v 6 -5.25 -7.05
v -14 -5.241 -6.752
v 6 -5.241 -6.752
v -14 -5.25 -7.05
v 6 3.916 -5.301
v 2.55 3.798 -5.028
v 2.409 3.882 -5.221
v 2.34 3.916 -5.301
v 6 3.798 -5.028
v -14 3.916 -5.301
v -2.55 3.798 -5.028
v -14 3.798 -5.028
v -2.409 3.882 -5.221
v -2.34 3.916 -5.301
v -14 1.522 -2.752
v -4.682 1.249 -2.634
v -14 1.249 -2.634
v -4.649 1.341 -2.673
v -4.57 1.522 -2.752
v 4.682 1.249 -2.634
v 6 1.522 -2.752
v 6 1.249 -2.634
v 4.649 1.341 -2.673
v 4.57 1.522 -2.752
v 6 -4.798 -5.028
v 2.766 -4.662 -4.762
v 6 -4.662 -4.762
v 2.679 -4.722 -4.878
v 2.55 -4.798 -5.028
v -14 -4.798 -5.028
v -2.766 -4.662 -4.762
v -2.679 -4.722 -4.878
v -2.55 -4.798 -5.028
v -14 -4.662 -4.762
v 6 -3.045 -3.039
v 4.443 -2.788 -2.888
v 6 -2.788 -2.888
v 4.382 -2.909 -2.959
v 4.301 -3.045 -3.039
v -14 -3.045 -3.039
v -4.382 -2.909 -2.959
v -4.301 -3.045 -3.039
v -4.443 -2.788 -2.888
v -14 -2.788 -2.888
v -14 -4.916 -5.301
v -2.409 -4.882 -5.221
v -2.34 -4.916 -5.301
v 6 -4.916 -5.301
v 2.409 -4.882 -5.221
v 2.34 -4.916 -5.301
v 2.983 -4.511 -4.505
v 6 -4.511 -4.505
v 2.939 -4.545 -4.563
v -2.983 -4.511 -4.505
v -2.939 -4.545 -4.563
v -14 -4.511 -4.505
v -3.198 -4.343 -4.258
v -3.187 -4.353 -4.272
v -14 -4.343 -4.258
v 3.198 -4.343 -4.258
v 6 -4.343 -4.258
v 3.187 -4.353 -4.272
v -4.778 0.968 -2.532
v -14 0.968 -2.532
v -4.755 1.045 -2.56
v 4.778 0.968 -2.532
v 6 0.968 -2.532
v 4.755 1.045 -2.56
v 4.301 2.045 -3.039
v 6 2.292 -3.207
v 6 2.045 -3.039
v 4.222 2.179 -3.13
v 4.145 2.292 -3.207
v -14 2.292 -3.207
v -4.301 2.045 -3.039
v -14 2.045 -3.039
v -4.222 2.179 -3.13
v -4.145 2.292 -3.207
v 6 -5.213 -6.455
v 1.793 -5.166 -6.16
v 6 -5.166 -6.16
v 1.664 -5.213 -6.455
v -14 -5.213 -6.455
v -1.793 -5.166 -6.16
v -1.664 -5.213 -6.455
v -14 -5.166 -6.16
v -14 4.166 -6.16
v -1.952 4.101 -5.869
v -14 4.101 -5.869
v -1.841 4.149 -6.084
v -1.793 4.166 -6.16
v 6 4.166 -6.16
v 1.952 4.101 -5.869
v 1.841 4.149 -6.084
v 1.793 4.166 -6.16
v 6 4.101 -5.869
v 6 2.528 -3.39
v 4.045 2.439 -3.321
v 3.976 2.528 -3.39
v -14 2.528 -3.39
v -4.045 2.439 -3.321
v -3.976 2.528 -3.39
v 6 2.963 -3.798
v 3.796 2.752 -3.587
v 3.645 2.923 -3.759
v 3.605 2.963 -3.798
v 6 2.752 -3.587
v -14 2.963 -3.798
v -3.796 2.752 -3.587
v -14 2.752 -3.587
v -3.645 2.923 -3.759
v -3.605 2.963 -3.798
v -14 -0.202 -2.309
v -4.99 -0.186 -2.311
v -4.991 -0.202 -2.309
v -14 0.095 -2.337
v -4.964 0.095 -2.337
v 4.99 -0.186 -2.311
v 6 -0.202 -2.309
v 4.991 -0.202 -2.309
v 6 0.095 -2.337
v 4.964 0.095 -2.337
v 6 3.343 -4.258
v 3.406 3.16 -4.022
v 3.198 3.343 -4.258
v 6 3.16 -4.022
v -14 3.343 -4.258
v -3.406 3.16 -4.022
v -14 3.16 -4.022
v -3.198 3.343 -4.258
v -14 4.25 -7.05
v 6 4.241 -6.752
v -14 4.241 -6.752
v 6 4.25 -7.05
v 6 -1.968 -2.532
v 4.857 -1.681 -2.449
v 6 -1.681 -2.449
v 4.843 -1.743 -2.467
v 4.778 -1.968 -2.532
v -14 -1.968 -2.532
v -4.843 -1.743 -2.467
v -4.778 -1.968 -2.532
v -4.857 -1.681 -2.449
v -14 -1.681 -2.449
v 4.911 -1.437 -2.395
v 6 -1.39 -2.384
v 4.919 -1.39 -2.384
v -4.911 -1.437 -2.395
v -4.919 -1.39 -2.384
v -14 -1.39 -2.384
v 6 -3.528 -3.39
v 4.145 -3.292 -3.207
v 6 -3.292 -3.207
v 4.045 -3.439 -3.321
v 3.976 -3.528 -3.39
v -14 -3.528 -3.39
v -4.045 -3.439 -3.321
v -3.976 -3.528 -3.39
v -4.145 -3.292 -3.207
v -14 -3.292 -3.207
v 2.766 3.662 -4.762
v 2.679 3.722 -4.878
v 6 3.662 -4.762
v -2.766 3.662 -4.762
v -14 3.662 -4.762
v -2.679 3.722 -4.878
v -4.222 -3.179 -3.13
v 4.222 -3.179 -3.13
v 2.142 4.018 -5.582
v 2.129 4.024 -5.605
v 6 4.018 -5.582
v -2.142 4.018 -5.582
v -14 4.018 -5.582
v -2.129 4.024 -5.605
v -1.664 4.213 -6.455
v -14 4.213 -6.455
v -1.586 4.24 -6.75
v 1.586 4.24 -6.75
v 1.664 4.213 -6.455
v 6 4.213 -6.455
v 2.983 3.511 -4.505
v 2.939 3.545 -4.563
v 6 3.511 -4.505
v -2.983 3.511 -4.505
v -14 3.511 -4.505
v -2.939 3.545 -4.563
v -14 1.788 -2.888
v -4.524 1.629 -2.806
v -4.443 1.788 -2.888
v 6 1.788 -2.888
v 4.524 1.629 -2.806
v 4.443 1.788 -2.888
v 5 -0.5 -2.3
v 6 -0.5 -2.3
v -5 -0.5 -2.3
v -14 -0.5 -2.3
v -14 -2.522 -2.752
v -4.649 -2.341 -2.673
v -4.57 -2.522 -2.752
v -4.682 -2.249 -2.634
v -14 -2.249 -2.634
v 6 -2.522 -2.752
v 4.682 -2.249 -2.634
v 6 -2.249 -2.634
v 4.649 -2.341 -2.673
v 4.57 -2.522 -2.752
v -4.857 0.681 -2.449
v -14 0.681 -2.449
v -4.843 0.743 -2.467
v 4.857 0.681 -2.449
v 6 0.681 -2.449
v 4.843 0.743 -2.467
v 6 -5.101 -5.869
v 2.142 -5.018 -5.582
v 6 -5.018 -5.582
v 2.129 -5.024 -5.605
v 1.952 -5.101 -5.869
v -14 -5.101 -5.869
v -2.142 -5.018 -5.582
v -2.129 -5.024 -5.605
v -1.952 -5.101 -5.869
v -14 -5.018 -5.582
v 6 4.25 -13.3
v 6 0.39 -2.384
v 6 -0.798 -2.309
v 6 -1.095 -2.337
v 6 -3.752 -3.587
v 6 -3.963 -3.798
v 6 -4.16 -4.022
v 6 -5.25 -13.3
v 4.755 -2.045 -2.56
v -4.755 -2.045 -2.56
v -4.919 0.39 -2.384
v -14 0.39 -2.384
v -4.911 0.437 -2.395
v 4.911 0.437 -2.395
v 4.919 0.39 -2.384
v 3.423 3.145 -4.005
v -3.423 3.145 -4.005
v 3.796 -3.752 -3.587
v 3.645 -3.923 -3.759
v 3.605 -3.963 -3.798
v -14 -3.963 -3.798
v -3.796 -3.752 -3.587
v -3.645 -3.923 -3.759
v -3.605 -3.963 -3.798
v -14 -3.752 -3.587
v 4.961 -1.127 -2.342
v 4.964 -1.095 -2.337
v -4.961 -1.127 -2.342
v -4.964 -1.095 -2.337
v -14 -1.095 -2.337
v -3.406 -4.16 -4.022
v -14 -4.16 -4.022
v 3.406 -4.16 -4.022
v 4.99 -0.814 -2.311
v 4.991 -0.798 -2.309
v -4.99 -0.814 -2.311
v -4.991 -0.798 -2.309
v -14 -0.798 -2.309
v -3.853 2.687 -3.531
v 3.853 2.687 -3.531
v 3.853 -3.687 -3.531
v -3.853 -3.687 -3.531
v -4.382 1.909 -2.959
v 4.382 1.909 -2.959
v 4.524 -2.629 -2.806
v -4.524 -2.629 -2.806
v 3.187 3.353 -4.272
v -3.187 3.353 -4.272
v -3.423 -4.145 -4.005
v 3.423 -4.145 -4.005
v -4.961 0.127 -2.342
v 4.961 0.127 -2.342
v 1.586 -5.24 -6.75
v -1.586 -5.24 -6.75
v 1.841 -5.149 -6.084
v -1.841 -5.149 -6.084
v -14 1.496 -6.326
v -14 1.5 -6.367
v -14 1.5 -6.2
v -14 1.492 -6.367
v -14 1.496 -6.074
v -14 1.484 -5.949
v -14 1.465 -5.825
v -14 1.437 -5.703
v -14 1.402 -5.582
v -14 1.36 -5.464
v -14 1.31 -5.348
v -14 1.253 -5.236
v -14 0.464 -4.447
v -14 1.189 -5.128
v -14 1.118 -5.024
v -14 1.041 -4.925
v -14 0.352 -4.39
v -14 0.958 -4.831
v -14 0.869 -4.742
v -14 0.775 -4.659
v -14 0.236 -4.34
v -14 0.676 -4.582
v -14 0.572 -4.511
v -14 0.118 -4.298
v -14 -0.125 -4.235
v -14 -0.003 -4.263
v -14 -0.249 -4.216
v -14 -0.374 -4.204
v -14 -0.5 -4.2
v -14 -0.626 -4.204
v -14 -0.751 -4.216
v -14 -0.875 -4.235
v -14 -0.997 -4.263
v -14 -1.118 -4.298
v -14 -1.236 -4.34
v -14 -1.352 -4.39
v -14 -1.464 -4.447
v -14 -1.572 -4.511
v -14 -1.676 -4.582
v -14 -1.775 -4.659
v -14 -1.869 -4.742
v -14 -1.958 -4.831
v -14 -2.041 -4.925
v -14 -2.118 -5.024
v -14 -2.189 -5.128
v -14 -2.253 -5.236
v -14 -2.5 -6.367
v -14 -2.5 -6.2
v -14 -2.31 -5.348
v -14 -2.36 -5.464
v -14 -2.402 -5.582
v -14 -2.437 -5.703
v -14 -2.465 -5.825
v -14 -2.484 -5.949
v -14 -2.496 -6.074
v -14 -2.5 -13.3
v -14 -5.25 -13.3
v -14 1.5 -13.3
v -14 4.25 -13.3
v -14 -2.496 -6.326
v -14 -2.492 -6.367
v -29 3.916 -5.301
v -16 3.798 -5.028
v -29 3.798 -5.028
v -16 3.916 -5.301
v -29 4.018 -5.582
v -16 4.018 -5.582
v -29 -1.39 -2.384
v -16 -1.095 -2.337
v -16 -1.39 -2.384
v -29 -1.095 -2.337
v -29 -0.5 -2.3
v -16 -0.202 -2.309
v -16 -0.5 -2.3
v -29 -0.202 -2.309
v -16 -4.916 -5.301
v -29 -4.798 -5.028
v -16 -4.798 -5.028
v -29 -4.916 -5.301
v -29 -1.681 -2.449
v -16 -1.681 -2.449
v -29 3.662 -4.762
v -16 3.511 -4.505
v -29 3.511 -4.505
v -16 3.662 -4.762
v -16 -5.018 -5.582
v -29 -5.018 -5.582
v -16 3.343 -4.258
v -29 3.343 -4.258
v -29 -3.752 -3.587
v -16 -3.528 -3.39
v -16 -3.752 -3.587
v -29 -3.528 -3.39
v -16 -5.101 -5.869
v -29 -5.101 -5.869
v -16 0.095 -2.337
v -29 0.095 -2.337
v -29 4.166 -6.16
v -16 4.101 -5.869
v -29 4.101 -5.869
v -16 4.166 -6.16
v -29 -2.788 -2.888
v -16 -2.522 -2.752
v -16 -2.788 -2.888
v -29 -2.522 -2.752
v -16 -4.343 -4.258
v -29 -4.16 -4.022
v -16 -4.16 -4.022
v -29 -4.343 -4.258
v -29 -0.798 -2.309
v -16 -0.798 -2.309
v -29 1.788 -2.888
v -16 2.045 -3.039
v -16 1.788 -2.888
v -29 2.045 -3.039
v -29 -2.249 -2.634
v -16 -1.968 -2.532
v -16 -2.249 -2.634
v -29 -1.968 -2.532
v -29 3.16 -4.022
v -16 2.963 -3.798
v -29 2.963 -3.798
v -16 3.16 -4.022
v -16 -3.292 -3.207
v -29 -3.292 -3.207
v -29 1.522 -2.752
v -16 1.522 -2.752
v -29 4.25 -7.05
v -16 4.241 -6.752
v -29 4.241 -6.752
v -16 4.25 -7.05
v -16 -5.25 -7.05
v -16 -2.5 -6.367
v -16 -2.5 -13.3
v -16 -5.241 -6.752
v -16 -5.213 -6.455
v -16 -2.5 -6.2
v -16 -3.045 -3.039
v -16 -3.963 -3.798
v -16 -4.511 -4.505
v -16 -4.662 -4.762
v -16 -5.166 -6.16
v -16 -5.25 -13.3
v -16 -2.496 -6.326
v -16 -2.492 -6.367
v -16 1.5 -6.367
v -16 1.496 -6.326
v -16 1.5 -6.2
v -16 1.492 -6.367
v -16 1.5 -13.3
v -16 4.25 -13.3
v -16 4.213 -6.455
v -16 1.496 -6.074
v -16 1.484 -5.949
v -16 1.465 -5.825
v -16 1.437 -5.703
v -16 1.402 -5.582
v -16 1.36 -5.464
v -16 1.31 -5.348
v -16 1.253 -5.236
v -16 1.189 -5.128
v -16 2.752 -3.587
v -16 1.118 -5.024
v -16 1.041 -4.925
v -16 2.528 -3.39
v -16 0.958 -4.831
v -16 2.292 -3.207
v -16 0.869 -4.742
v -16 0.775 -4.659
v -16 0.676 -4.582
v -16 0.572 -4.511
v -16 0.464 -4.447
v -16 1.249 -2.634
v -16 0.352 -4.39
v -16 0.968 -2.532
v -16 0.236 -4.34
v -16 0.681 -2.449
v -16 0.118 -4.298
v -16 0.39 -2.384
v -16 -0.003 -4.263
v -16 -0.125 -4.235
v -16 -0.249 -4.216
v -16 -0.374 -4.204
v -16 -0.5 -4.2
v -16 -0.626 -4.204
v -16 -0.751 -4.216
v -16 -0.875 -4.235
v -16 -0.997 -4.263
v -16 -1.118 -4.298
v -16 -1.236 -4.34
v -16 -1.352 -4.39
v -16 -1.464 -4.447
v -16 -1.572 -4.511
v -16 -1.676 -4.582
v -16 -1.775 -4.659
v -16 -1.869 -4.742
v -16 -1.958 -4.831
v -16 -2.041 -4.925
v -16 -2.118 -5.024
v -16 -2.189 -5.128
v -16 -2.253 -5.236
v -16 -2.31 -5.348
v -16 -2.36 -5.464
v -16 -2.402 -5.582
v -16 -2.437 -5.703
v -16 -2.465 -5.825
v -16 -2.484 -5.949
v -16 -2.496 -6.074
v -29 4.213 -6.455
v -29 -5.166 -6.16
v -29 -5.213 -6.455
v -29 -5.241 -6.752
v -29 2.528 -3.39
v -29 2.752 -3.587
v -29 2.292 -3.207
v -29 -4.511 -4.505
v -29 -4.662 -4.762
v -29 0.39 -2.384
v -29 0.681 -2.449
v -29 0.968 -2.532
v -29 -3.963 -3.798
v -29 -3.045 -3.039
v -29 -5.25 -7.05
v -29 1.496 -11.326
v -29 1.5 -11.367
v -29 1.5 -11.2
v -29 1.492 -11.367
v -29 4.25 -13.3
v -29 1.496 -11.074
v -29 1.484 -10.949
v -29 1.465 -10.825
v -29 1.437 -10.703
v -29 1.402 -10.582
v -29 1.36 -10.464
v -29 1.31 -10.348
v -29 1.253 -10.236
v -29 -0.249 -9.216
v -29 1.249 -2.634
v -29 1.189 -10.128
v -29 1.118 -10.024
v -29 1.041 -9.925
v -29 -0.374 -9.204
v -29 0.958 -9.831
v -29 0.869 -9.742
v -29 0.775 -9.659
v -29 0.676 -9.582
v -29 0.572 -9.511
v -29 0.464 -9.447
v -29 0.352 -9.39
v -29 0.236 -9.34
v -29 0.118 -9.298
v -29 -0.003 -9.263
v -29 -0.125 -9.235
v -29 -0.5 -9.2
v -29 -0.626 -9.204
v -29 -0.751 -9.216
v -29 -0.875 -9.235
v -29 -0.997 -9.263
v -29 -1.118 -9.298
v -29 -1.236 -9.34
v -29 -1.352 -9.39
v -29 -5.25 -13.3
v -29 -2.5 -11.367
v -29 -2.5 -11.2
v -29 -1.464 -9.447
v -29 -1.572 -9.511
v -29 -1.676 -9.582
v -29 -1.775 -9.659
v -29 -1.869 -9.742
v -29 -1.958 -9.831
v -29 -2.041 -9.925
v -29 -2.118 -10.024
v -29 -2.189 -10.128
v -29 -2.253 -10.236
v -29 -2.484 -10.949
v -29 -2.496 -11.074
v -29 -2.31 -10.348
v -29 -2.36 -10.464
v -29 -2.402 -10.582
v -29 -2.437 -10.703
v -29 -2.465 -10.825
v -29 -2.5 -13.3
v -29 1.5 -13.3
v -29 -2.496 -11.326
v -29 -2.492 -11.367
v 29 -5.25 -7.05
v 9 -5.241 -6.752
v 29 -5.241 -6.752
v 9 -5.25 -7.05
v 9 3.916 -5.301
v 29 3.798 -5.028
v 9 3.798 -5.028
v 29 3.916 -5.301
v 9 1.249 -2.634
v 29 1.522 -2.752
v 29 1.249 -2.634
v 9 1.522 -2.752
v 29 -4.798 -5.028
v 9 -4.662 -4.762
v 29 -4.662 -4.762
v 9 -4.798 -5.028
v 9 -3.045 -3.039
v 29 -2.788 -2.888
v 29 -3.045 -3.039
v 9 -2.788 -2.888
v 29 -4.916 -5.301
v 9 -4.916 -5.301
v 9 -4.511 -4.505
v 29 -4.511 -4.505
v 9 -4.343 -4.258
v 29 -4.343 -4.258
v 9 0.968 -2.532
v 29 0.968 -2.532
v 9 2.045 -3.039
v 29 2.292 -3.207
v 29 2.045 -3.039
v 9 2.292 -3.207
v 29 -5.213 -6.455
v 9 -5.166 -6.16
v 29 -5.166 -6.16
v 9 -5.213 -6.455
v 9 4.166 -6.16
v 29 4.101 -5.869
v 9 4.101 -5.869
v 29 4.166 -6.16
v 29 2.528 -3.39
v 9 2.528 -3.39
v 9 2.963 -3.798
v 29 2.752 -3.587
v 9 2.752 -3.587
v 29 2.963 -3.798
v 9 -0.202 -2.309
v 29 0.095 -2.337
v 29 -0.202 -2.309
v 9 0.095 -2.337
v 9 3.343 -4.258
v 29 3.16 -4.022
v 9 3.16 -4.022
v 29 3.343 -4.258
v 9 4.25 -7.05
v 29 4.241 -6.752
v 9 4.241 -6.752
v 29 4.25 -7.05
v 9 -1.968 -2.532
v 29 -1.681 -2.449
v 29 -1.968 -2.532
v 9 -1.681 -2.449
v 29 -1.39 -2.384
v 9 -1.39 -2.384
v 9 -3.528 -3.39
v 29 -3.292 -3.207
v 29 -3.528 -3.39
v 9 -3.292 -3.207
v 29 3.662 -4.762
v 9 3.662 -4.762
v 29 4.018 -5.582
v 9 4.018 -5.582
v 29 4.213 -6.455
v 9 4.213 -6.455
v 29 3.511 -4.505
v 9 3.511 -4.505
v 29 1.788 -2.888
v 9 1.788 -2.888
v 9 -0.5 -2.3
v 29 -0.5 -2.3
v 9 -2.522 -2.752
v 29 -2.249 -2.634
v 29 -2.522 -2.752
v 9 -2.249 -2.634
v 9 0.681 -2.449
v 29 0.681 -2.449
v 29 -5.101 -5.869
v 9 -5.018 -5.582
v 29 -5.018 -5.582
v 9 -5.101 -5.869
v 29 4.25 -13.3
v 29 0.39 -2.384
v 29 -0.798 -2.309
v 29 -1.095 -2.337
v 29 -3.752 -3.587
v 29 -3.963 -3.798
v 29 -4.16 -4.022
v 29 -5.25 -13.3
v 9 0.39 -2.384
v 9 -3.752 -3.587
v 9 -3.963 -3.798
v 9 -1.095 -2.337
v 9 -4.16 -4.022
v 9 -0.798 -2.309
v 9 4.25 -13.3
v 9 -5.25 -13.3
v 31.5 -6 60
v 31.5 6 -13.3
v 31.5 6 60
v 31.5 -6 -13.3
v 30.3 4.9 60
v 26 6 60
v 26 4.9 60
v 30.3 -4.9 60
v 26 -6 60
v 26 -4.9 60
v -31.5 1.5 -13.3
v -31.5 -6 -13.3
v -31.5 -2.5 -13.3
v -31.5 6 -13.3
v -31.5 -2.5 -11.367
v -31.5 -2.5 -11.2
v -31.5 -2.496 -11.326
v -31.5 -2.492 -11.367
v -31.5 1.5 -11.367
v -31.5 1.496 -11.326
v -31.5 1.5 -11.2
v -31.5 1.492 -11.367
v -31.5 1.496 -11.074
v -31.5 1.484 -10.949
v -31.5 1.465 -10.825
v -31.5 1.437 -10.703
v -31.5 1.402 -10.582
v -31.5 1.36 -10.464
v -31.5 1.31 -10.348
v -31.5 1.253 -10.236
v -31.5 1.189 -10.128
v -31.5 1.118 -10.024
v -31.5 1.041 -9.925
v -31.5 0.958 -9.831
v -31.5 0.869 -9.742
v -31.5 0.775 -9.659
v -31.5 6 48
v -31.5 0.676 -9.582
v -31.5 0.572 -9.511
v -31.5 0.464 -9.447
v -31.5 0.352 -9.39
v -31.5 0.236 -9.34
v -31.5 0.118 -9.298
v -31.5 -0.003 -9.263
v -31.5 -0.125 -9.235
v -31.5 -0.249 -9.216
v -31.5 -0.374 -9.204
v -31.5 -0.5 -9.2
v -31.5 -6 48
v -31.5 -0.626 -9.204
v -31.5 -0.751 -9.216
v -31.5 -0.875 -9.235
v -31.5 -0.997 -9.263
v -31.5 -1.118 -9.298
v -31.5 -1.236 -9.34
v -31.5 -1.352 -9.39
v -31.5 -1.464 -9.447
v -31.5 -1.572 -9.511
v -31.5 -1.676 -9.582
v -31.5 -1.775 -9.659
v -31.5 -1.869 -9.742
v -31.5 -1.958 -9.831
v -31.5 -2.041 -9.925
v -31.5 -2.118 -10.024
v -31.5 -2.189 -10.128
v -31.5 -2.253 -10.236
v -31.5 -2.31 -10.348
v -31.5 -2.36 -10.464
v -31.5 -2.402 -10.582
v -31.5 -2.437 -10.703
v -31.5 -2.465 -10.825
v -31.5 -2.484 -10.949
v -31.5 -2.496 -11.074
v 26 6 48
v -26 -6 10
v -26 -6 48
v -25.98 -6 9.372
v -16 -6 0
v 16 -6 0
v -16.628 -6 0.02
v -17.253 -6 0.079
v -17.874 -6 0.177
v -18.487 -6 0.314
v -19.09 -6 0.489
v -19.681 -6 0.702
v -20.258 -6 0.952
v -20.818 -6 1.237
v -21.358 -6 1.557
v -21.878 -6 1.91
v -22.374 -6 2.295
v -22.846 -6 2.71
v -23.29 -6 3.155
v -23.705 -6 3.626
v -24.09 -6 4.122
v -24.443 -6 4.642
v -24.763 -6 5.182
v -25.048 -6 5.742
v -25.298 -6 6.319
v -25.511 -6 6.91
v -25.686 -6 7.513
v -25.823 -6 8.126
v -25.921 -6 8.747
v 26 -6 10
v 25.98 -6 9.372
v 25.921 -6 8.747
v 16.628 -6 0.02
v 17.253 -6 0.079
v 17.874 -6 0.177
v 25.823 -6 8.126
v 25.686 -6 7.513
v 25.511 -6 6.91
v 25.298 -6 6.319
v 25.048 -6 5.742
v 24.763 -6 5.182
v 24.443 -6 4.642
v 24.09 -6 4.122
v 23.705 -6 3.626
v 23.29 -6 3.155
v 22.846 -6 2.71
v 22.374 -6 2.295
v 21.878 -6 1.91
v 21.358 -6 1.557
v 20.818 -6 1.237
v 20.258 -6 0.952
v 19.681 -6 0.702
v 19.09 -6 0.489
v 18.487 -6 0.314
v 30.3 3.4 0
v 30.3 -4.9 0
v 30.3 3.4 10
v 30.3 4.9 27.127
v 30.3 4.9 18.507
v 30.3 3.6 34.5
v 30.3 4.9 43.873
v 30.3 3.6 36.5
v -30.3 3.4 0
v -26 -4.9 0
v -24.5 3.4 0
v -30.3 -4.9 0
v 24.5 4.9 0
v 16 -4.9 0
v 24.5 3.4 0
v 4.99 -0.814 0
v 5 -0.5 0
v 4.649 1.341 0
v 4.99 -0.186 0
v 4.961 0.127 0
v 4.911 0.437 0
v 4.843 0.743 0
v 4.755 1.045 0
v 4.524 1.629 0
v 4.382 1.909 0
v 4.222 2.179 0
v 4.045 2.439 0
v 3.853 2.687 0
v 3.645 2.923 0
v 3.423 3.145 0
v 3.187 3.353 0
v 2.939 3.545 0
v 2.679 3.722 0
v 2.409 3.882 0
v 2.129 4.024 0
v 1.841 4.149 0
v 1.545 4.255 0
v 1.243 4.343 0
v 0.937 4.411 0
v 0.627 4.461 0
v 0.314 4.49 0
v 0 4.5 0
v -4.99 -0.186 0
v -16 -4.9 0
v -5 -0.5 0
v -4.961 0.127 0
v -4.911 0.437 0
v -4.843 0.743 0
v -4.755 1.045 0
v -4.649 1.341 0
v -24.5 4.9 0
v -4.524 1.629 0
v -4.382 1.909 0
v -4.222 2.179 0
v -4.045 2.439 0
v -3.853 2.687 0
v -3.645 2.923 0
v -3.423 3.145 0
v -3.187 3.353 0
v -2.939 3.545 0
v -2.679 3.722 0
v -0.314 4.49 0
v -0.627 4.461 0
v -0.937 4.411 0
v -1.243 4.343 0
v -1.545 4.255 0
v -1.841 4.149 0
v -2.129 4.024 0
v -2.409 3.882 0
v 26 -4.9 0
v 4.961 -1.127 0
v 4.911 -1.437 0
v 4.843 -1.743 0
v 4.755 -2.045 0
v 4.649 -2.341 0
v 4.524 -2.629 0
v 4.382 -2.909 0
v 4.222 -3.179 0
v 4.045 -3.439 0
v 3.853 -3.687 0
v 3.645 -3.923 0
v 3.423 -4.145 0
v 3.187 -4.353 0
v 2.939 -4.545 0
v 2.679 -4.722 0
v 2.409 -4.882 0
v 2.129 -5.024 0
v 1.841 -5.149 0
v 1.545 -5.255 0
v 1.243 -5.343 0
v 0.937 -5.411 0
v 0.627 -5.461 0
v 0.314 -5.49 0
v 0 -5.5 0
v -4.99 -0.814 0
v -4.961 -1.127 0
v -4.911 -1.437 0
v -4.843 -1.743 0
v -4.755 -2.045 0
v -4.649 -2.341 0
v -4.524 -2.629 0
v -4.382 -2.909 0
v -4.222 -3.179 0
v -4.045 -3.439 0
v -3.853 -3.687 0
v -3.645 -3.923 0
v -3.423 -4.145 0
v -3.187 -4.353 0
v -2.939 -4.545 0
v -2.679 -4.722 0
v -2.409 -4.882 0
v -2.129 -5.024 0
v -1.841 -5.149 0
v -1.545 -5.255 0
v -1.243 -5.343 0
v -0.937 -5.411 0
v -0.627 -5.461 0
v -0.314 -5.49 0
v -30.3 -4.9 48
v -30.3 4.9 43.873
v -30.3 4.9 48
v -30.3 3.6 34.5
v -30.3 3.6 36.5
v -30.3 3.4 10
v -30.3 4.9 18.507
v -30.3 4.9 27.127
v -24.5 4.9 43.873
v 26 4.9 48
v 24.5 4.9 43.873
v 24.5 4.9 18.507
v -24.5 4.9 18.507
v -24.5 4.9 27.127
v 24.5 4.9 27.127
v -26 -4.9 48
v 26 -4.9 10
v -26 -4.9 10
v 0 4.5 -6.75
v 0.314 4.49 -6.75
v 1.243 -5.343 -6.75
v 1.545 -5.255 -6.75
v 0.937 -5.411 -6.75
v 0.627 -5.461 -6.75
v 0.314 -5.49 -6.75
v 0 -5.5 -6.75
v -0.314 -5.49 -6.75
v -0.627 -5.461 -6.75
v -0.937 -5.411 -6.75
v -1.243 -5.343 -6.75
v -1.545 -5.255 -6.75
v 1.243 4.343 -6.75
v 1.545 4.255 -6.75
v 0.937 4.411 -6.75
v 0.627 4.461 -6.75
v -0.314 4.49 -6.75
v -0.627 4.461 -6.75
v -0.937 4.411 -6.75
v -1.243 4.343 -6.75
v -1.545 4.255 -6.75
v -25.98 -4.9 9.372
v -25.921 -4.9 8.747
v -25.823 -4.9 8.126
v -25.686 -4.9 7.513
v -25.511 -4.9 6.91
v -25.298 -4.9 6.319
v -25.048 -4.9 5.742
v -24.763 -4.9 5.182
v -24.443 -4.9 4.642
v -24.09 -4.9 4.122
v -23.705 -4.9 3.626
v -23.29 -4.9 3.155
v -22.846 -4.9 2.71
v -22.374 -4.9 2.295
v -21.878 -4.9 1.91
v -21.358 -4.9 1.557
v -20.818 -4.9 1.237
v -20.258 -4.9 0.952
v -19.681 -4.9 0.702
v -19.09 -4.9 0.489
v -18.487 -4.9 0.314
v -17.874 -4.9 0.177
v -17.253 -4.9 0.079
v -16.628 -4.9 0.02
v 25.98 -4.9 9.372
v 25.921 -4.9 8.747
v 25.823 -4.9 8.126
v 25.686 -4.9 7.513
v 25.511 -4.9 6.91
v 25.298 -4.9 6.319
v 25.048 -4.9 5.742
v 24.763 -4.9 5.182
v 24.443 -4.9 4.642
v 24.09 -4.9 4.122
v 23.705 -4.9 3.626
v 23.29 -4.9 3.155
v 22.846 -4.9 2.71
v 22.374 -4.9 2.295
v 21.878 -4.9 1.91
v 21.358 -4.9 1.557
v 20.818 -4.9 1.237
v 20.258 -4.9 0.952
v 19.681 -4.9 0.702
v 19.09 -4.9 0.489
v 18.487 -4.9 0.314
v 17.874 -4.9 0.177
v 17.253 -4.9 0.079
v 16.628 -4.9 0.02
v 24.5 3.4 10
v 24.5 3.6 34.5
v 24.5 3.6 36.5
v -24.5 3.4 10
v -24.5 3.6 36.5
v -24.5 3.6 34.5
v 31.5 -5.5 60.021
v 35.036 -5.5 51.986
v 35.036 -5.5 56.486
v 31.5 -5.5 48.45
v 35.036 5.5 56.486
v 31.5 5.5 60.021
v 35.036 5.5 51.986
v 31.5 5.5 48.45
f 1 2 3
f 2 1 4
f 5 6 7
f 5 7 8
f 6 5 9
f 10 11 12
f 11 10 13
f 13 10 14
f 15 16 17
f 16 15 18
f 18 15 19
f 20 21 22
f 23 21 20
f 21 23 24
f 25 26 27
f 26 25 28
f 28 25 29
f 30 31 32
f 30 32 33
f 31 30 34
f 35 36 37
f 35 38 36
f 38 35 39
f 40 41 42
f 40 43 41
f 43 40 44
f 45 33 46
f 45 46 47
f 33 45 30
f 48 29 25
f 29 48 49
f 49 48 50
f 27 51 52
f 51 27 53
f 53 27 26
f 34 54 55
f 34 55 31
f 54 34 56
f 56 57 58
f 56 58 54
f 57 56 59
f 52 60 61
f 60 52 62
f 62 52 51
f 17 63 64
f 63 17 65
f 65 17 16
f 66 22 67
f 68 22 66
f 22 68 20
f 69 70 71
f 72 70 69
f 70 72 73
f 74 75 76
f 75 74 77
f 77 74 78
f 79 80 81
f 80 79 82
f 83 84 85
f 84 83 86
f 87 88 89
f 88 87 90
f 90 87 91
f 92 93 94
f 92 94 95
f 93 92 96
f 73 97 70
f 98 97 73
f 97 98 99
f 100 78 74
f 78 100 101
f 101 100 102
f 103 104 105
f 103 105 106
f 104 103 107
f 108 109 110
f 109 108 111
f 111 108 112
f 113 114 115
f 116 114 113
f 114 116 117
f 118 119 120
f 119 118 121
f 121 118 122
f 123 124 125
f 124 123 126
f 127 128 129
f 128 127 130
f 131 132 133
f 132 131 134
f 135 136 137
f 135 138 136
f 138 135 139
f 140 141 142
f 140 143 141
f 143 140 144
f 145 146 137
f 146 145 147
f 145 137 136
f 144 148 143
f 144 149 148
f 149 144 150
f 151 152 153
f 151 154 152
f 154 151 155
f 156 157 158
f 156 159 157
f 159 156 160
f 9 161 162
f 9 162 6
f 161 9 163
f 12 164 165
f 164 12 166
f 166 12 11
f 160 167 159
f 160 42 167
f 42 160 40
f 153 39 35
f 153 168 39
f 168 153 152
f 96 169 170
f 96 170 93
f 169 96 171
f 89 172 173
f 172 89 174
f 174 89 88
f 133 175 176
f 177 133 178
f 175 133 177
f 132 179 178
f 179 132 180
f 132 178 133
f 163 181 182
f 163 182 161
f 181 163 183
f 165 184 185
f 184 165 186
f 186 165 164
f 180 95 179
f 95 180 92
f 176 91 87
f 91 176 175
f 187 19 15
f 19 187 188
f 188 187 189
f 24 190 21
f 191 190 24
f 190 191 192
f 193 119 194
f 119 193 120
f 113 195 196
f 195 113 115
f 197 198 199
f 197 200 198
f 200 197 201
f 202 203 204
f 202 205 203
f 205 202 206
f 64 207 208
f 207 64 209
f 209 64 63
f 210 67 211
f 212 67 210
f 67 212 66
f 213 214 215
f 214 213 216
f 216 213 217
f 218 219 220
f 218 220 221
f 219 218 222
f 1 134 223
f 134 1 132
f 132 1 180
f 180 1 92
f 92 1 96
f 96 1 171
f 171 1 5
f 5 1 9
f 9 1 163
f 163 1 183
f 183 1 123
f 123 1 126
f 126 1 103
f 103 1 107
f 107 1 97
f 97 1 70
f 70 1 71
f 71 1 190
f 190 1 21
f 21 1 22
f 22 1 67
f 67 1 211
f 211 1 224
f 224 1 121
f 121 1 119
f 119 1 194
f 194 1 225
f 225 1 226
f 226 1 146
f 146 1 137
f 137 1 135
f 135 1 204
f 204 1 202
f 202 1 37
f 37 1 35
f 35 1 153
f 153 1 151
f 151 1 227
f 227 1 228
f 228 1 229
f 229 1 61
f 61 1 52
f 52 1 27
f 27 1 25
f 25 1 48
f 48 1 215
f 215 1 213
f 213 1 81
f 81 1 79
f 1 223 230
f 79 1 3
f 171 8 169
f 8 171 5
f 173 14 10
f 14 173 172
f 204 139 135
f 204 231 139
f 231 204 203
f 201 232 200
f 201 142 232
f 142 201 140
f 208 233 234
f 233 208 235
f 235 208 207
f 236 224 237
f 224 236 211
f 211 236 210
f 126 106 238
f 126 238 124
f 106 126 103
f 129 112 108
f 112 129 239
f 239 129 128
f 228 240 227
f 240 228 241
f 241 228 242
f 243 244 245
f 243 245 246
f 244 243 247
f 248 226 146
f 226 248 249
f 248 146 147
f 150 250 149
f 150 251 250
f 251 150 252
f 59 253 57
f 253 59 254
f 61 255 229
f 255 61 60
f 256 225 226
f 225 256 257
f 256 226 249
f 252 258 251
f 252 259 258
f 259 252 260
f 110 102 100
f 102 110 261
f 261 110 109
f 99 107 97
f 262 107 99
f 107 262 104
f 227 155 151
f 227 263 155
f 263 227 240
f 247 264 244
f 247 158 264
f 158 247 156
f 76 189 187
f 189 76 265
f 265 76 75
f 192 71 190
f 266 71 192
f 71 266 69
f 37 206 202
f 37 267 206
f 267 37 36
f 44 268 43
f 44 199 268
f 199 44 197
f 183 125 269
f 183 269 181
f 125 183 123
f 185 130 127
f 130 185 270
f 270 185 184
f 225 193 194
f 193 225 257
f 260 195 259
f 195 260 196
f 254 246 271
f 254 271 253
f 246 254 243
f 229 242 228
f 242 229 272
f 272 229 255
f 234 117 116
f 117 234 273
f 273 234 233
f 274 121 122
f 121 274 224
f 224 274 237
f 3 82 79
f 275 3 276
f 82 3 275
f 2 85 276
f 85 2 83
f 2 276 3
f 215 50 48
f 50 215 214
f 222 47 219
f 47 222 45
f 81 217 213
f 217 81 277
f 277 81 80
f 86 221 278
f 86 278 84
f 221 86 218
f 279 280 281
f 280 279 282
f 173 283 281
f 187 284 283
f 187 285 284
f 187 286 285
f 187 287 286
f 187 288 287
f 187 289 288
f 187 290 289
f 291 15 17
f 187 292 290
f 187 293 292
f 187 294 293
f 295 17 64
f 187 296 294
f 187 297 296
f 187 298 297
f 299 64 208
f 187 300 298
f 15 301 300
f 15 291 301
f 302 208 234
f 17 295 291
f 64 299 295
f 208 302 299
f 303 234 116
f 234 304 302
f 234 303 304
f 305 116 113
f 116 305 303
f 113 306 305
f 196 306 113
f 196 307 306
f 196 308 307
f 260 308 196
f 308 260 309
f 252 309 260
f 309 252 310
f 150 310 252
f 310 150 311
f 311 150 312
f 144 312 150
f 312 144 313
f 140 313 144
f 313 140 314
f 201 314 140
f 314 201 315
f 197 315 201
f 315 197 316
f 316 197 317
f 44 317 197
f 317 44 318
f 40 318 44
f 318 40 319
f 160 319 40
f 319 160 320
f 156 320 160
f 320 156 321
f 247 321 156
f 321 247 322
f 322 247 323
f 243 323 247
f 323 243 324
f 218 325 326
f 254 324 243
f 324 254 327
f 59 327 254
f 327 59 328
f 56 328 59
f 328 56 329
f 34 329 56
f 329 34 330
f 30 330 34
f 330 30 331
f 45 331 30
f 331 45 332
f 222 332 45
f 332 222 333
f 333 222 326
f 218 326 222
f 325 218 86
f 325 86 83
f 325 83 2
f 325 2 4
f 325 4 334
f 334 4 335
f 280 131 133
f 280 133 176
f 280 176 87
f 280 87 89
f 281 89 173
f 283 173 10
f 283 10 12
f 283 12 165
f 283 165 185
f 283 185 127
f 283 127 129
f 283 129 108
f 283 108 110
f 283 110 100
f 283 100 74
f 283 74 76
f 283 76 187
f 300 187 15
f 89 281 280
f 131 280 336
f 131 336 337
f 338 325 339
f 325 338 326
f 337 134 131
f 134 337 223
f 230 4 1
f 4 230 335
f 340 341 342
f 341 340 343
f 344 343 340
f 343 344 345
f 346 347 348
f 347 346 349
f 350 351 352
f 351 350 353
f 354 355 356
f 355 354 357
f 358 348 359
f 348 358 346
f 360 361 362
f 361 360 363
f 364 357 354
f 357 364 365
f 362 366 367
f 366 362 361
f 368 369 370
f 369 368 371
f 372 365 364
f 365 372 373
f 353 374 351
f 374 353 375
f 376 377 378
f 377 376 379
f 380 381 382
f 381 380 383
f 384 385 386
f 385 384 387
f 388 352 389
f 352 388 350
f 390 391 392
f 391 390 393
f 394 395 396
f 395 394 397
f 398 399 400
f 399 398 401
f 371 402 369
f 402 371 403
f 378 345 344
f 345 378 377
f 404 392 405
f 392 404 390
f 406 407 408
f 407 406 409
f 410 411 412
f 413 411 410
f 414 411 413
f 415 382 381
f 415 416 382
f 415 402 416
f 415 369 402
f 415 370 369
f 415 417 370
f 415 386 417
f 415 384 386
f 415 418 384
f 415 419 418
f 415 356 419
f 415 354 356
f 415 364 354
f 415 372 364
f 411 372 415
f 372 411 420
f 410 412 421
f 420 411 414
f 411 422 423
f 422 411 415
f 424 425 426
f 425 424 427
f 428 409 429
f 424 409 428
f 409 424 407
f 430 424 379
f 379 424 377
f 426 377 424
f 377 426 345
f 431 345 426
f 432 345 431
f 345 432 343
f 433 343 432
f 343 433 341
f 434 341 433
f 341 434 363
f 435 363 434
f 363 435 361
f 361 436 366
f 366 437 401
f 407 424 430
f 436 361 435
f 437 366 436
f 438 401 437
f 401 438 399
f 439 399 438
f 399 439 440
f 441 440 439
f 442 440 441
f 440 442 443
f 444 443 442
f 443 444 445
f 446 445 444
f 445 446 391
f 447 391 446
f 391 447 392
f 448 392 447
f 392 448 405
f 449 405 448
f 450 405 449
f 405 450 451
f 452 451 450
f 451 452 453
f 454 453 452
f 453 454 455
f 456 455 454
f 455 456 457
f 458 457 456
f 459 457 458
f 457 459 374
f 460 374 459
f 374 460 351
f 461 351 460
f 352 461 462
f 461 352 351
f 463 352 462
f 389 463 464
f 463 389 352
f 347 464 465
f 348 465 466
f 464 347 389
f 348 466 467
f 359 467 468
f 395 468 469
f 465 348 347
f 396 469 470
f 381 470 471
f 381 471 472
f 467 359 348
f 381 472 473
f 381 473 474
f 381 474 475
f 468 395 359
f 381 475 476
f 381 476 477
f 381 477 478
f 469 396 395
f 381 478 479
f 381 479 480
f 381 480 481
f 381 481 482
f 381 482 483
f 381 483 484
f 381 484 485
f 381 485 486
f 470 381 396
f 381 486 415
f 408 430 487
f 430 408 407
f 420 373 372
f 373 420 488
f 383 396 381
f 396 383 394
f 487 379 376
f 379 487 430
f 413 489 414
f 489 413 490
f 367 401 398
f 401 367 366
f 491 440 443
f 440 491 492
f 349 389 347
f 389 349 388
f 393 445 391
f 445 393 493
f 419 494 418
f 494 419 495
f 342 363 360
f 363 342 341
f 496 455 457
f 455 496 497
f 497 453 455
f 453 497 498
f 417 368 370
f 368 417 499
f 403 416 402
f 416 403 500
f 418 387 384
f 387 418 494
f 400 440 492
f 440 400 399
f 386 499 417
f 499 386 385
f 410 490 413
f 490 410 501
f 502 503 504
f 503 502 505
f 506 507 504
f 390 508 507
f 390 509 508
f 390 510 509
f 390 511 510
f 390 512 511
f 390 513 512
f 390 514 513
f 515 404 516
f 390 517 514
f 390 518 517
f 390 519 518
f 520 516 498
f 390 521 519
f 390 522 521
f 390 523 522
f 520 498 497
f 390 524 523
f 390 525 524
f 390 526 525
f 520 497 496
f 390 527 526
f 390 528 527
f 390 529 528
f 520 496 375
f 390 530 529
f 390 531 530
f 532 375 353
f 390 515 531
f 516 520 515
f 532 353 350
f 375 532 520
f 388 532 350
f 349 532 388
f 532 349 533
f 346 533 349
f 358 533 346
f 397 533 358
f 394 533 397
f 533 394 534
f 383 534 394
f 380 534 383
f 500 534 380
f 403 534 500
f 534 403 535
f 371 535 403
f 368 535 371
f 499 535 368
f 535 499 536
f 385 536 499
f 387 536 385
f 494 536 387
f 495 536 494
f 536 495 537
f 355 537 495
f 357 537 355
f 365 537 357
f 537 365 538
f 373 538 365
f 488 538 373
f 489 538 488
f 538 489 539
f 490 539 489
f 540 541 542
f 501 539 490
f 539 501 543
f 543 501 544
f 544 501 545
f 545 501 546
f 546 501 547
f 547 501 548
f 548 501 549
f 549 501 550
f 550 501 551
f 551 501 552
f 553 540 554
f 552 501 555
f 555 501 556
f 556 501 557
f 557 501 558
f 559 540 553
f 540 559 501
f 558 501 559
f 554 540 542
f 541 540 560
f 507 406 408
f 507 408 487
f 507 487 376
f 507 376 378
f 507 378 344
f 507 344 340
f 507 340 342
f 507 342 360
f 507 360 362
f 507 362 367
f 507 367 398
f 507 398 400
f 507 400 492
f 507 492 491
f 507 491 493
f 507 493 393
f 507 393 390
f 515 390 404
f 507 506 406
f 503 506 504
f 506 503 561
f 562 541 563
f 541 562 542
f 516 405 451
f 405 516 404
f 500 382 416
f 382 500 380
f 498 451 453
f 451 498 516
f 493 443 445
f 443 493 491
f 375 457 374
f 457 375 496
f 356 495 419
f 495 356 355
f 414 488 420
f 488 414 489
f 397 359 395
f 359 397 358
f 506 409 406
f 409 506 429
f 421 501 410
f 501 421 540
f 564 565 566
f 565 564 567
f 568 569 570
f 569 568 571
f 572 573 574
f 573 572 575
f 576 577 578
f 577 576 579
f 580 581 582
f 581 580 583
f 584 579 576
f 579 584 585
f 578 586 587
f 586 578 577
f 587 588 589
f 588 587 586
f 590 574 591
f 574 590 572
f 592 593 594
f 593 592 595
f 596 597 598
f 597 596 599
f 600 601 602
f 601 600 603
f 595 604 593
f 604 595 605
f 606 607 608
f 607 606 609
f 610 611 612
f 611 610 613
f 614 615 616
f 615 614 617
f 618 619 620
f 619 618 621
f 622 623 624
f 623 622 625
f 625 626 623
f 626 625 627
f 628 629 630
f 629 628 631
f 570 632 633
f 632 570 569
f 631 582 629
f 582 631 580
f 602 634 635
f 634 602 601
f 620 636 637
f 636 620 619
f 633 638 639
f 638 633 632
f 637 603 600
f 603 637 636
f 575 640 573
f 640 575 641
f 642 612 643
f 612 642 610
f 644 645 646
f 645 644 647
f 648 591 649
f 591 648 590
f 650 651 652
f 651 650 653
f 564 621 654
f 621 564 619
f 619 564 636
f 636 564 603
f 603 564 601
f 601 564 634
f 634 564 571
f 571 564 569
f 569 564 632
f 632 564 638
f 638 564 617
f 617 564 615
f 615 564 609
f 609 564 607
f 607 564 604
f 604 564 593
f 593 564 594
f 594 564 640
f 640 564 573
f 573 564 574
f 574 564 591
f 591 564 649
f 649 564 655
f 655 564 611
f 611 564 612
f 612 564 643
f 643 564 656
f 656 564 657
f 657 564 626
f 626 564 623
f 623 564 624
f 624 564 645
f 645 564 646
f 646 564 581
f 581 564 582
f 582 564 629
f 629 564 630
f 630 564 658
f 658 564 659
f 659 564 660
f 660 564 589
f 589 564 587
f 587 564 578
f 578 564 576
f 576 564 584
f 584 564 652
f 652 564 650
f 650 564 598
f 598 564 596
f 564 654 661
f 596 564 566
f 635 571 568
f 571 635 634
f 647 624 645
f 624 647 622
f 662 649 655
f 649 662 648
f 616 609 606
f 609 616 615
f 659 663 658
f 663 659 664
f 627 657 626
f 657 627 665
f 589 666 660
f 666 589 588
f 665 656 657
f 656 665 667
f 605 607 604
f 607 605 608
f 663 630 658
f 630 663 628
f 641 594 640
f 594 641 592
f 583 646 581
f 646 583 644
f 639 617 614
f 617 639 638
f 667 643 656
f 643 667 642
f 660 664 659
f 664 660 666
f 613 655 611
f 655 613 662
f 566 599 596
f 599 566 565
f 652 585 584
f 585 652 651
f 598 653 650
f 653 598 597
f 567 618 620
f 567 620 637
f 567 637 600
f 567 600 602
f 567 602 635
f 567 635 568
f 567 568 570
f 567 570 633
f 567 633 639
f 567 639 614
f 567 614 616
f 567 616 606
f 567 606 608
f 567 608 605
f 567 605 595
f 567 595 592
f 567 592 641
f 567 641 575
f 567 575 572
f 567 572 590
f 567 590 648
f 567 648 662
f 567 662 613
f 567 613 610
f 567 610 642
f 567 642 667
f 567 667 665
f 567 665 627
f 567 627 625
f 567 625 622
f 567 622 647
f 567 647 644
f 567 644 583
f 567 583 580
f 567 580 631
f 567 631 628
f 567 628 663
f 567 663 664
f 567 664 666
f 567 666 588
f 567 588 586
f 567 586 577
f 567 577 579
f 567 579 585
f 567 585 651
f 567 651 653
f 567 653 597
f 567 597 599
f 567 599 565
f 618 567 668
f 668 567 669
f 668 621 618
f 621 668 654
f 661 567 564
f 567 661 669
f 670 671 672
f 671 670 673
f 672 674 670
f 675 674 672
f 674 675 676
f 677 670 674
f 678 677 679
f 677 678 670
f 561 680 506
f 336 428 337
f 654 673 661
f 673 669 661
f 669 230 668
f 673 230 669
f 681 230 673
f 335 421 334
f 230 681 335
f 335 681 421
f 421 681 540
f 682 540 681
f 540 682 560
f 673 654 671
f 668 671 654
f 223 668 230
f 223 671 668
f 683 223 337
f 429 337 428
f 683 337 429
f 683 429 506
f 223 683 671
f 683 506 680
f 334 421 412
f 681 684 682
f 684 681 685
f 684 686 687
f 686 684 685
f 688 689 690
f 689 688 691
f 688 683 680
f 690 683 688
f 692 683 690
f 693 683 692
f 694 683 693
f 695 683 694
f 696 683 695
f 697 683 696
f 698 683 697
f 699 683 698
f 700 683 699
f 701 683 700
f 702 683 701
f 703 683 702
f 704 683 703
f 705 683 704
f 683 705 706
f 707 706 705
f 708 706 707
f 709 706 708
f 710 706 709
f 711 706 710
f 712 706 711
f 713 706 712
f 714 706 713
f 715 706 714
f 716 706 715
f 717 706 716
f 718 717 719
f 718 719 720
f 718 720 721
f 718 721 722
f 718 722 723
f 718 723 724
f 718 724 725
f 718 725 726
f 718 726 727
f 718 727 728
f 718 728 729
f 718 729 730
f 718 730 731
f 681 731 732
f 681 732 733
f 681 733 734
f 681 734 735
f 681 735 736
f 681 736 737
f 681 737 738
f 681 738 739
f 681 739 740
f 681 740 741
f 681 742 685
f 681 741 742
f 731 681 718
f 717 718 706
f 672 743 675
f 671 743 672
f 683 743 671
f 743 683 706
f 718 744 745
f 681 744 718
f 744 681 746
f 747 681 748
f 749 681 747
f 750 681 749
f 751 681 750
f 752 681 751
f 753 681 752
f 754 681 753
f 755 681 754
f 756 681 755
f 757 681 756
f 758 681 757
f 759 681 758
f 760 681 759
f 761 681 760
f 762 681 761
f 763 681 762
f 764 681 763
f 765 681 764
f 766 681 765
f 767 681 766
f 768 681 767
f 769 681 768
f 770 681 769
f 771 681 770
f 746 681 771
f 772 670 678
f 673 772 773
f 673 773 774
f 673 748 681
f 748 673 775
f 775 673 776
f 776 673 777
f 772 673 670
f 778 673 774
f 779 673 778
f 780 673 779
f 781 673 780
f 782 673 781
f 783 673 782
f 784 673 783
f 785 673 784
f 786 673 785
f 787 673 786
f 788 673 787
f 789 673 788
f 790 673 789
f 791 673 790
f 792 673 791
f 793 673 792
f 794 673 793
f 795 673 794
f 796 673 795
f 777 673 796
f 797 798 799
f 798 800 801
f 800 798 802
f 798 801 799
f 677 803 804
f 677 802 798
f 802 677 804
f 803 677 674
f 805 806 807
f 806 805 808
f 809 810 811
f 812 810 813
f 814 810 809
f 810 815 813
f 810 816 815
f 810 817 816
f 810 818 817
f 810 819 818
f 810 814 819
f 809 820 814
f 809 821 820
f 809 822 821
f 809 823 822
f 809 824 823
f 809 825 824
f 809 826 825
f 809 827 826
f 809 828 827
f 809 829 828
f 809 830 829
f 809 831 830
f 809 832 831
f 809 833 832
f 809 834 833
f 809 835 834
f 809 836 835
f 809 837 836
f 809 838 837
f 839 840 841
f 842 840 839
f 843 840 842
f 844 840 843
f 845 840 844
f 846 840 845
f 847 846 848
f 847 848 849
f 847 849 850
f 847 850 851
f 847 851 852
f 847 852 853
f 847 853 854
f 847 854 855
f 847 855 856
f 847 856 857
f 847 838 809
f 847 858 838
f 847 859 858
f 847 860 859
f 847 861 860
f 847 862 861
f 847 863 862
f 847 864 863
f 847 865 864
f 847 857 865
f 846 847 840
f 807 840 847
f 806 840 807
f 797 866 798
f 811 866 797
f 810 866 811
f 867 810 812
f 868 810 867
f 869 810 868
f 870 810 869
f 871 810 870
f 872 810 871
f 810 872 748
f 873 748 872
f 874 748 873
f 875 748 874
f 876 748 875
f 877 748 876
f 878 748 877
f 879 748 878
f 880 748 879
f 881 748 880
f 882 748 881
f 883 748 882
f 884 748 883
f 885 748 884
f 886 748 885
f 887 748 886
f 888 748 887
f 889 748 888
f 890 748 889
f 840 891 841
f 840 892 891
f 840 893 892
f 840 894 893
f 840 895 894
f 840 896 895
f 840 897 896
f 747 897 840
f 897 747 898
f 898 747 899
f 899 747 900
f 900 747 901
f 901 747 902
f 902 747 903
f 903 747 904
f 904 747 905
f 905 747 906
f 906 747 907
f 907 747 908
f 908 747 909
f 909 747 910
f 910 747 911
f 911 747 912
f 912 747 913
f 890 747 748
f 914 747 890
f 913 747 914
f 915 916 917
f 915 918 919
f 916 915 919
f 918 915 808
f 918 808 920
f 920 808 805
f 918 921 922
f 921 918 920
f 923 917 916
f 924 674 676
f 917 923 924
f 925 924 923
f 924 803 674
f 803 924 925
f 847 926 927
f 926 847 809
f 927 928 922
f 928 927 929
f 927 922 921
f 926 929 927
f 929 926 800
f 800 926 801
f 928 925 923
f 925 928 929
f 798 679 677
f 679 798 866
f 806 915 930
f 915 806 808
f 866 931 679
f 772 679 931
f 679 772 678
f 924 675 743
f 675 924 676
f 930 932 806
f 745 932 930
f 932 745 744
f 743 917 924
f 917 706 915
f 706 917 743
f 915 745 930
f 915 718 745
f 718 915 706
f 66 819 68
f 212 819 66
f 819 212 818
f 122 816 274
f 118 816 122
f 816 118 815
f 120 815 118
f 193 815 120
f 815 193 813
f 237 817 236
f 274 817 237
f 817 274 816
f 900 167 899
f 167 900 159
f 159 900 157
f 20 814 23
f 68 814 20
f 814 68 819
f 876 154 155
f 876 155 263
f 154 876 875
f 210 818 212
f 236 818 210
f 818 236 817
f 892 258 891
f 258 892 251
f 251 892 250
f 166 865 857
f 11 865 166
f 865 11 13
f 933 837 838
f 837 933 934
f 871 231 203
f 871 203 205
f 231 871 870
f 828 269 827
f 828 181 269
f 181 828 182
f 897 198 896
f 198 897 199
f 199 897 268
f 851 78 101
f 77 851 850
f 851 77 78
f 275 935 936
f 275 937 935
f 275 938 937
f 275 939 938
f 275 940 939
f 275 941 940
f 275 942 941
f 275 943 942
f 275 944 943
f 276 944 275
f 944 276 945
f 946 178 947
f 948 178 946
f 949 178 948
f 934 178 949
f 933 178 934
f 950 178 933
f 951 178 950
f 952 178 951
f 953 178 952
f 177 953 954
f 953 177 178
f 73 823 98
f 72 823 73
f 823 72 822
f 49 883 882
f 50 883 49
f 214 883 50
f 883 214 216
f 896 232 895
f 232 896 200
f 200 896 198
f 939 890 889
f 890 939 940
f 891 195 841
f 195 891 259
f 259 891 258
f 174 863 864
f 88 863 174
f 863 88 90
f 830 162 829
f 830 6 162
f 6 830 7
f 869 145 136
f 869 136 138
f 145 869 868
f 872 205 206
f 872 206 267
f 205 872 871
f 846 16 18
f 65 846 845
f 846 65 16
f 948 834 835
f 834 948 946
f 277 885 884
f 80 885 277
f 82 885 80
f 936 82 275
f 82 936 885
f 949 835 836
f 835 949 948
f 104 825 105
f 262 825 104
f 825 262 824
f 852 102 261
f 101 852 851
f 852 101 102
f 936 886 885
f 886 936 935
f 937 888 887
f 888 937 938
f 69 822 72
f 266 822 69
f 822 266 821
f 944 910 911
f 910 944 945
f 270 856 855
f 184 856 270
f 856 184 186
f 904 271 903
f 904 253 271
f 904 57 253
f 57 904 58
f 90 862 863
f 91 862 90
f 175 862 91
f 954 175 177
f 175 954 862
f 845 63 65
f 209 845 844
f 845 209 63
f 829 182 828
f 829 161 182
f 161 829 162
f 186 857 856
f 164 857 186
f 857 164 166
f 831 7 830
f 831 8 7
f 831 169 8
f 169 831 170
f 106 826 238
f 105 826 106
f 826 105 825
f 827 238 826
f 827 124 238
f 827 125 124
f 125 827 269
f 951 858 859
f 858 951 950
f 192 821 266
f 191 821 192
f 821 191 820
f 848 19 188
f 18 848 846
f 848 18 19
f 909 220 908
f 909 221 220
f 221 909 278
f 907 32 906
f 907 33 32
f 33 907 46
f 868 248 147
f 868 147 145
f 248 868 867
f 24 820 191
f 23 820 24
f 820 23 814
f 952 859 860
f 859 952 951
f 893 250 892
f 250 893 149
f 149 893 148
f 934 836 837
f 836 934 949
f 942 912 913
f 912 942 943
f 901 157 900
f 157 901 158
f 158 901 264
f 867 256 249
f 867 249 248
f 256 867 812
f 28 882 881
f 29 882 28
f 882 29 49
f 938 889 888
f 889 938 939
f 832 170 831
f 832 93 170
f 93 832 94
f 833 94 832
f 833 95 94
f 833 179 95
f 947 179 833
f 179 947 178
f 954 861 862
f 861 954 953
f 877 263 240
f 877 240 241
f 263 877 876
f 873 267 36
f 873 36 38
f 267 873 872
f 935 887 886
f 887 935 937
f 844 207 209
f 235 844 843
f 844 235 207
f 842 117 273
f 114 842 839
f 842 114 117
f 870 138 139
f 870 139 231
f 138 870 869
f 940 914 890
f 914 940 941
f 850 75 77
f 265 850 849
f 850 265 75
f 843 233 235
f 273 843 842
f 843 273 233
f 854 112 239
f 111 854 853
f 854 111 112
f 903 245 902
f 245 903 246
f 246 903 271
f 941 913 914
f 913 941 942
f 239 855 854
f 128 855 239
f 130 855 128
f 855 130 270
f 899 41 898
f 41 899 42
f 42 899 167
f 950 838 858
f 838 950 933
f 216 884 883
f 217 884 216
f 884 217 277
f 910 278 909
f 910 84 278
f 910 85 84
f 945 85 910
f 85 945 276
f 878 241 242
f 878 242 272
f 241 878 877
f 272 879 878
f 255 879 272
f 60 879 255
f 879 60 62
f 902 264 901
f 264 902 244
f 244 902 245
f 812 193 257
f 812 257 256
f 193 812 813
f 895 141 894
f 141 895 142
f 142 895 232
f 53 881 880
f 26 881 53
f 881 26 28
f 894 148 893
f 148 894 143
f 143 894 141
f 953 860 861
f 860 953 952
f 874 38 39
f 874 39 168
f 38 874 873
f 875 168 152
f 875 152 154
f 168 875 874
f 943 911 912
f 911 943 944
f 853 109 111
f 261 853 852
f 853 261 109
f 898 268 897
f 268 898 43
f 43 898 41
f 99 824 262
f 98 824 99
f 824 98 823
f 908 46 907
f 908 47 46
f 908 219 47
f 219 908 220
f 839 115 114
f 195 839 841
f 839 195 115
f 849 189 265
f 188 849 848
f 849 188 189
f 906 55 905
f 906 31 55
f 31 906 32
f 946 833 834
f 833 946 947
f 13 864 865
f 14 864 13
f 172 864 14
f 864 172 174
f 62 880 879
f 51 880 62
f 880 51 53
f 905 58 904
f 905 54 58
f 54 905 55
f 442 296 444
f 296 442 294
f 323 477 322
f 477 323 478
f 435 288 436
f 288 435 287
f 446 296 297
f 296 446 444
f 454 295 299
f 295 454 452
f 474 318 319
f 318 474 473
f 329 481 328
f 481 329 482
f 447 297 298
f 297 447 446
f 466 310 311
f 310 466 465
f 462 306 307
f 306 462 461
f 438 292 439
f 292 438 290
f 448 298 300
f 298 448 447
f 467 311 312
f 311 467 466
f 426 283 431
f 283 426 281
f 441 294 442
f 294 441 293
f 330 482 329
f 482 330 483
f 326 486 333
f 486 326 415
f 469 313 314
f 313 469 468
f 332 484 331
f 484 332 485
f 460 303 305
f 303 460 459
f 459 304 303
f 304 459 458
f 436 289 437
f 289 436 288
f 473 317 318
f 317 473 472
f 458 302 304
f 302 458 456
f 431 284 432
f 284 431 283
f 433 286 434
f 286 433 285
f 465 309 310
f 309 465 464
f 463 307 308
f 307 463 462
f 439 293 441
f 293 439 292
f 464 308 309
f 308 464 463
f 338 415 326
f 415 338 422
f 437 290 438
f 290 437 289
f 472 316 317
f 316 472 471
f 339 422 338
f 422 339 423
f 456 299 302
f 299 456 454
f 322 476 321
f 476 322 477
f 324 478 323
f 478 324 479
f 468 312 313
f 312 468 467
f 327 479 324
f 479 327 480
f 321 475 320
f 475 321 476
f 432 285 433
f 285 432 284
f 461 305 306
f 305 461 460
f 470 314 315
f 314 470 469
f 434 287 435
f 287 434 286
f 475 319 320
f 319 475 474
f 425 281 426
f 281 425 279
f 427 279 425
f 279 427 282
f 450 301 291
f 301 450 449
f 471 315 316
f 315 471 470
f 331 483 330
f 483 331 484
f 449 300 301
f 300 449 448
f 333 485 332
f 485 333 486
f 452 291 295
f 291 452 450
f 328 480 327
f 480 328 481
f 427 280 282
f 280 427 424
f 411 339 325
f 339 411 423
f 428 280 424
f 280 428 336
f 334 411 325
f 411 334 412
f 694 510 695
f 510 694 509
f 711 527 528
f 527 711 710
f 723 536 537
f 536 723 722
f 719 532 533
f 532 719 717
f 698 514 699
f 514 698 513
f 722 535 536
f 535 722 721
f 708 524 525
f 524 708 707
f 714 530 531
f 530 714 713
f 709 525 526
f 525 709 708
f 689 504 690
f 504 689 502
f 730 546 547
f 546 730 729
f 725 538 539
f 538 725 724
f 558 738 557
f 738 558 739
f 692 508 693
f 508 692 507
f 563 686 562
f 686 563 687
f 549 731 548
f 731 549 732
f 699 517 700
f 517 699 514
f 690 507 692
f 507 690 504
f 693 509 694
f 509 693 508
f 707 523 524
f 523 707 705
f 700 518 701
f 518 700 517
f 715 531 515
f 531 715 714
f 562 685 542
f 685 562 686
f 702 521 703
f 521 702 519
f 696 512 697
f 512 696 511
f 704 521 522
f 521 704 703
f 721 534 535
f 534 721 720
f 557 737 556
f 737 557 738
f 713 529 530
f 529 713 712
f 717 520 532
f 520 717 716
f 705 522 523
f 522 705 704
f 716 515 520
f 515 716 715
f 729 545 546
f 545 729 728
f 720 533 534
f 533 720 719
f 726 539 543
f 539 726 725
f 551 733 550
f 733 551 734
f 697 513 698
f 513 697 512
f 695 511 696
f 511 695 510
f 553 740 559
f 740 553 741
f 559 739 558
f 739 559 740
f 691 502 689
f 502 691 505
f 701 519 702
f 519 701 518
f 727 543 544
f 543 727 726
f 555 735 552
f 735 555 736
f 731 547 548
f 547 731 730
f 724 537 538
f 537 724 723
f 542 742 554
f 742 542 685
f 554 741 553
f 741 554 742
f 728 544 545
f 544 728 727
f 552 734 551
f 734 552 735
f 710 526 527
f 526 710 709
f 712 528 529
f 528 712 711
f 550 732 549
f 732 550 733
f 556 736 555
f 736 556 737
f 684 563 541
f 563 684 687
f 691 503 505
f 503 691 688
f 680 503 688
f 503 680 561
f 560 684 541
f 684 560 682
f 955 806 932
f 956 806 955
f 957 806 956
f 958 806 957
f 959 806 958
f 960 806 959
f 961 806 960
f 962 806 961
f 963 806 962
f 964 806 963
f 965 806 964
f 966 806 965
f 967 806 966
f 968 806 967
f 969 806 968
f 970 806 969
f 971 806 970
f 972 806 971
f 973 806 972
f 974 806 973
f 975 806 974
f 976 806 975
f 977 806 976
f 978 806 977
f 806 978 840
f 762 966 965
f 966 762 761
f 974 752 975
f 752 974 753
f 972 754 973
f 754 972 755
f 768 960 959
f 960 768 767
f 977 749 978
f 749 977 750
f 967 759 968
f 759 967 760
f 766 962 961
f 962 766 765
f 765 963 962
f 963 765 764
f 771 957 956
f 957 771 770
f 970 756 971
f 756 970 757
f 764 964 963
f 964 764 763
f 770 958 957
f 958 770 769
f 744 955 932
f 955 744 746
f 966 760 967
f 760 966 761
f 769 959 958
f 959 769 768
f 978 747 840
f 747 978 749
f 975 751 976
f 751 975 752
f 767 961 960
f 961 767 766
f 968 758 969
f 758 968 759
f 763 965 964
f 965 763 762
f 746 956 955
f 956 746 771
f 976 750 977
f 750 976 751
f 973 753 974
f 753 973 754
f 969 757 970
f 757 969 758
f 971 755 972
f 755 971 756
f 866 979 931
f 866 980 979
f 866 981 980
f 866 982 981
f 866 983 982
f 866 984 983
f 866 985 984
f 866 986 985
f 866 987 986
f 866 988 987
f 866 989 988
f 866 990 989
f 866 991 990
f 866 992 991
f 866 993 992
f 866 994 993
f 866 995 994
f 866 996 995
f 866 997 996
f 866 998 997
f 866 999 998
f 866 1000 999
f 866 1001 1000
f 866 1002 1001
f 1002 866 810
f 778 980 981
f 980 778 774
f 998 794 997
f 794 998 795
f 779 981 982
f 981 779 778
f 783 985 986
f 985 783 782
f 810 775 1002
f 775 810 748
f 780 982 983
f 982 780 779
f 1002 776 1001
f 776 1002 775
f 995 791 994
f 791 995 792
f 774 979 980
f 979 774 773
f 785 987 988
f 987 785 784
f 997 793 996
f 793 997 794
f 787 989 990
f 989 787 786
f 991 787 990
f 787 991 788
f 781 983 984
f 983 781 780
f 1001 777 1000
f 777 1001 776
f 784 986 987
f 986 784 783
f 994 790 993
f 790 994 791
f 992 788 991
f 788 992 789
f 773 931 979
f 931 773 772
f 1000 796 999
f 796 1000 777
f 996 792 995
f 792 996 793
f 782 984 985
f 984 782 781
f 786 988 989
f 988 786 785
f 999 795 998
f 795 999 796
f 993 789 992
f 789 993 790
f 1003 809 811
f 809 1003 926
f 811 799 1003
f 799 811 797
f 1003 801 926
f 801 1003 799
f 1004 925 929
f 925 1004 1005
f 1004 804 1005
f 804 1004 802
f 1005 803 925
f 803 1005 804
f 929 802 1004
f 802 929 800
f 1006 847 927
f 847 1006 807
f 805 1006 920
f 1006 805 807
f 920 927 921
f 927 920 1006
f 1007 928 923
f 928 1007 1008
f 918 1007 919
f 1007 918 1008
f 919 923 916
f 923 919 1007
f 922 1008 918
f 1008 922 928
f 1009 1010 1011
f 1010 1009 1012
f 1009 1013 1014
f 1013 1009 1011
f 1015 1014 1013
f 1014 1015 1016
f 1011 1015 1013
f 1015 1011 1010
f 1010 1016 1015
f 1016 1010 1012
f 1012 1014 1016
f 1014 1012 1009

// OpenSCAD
//
// ktCAR5
//
//


gap1 = 0.001;
gap2 = 0.002;

panel_thick = 2;



//#translate([0, -1, 123.8/2]) cube([58.6, 7.8, 123.8], center=true); //iPhone SE
difference()
{
union()
{    
difference()
{
    union()
    {
        translate([0, 0, 70/2-10-3.3/2]) cube([63, 12, 70+3.3], center=true);
    }
    translate([0, 0, 123.8/2]) cube([58.6+2, 7.8+2, 123.8], center=true);
    translate([0, -5, 123.8/2]) cube([52, 5, 123.8], center=true);
    translate([-4, 0,  30/2+48]) cube([60, 20, 30], center=true);
    
    translate([0, -0.5,  -3.5/2]) cylinder(h=10, r=10/2, center=true, $fn=100);

    translate([0, -0.5,  0]) cylinder(h=30, r=8/2, center=true, $fn=100);
    translate([-35+8/2+2+15, -0.5,  -3.3+1]) holeB(20);
    translate([-35+8/2+2, -0.5,  -3.3+1]) holeB(13);
    translate([-30+15, -0.5,  -5.4-4/2-1/2-3.3+5]) rotate([0, 90, 0]) cylinder(h=5, r=4/2, center=true, $fn=100);
    translate([-30+15, -0.5,  -5.4-4*(2/3)-1-3.3+5-(10/2)]) cube([5, 4, 4/2+10], center=true);
    translate([9, -0.5,  -3.3+1]) holeB(20);
    translate([-30, -0.5,  -5.4-4/2-1/2-3.3]) rotate([0, 90, 0]) cylinder(h=17, r=4/2, center=true, $fn=100);
    translate([-30, -0.5,  -5.4-4*(2/3)-1-3.3]) cube([17, 4, 4/2], center=true);
}
translate([-52/2, -6, 0]) kadoL(D=1.1);
translate([ 52/2, -6, 0]) kadoR(D=1.1);

translate([63/2-7, (7.8+2)/2-1.5, 0]) slide(7, 2);
//translate([63/2-2.35, 10/2, 0]) rotate([0, 0, -90]) slide(10, 2);
translate([63/2-7, (7.8+2)/2-1.3, 34.5]) slide2(7, 2);
//translate([63/2-2.15, 10/2, 34.5]) rotate([0, 0, -90]) slide2(10, 2);
translate([-63/2, (7.8+2)/2-1.5, 0]) slide(7, 2);
//translate([-63/2+2.35, -10/2, 0]) rotate([0, 0, 90]) slide(10, 2);
translate([-63/2, (7.8+2)/2-1.3, 34.5]) slide2(7, 2);
//translate([-63/2+2.15, -10/2, 34.5]) rotate([0, 0, 90]) slide2(10, 2);
translate([63/2, 0, 48.45]) nob(11, 4.5);
}
//#translate([0, 0, 65]) cube([100, 100, 100], center=true);
}



module slide(W=5, D=1)
{
    difference()
    {
        union()
        {
            cube([W, 5, 10]);
            translate([0, 0, 10]) rotate([-10, 0, 0]) cube([W, 5, 12]);
        }
        translate([-1, D, -1]) cube([W+2, 10, 30]);
    }
}

module slide2(W=5, D=1)
{
    difference()
    {
        union()
        {
            cube([W, 5, 2]);
            translate([0, 0, 2]) rotate([-10, 0, 0]) cube([W, 5, 12]);
            translate([W, 0, 0]) rotate([-10, 180, 0]) cube([W, 5, 12]);
        }
        translate([-1, D, -20]) cube([W+2, 10, 50]);
    }
}

module nob(W=10, H=3)
{
    translate([5*sqrt(0.5), W/2, 5*sqrt(0.5)]) rotate([0, 0, 180]) 
    {
    difference()
    {
        union()
        {
            translate([0, 0, H]) rotate([0, 45, 0]) cube([5, W, 5]);
            cube([5, W, H]);
            translate([5*sqrt(0.5), 0, -5*sqrt(0.5)]) rotate([0, -45, 0]) cube([5, W, 5]);
        }
        translate([5*sqrt(0.5), -1, -5]) cube([W+2, W+2, 30]);
    }
    }
}

module kadoL(R=20, D=1)
{
    difference()
    {
        union()
        {
            cube([R, D, R]);
        }
        translate([R/2, 0, R/2]) rotate([90, 0, 0]) cylinder(h=D*3, r=R/2, center=true, $fn=100);
        translate([0, -D, R/2]) cube([R, D*3, R]);
        translate([R/2, -D, R/2]) cube([R, D*3, R]);
        translate([R/2, -D, 0]) cube([R, D*3, R]);
    }
}

module kadoR(R=20, D=1)
{
    difference()
    {
        union()
        {
            translate([-R, 0, 0]) cube([R, D, R]);
        }
        translate([-R/2, 0, R/2]) rotate([90, 0, 0]) cylinder(h=D*3, r=R/2, center=true, $fn=100);
        translate([-R, -D, R/2]) cube([R, D*3, R]);
        translate([-R-R/2, -D, R/2]) cube([R, D*3, R]);
        translate([-R-R/2, -D, 0]) cube([R, D*3, R]);
    }
}

module holeB(W=35)
{
    translate([W/2, 0,  -9.5/2]) rotate([0, 90, 0]) cylinder(h=W, r=9.5/2, center=true, $fn=100);
    translate([W/2, 0,  -9.5/2-100/2]) cube([W, 9.5, 100], center=true);
}
